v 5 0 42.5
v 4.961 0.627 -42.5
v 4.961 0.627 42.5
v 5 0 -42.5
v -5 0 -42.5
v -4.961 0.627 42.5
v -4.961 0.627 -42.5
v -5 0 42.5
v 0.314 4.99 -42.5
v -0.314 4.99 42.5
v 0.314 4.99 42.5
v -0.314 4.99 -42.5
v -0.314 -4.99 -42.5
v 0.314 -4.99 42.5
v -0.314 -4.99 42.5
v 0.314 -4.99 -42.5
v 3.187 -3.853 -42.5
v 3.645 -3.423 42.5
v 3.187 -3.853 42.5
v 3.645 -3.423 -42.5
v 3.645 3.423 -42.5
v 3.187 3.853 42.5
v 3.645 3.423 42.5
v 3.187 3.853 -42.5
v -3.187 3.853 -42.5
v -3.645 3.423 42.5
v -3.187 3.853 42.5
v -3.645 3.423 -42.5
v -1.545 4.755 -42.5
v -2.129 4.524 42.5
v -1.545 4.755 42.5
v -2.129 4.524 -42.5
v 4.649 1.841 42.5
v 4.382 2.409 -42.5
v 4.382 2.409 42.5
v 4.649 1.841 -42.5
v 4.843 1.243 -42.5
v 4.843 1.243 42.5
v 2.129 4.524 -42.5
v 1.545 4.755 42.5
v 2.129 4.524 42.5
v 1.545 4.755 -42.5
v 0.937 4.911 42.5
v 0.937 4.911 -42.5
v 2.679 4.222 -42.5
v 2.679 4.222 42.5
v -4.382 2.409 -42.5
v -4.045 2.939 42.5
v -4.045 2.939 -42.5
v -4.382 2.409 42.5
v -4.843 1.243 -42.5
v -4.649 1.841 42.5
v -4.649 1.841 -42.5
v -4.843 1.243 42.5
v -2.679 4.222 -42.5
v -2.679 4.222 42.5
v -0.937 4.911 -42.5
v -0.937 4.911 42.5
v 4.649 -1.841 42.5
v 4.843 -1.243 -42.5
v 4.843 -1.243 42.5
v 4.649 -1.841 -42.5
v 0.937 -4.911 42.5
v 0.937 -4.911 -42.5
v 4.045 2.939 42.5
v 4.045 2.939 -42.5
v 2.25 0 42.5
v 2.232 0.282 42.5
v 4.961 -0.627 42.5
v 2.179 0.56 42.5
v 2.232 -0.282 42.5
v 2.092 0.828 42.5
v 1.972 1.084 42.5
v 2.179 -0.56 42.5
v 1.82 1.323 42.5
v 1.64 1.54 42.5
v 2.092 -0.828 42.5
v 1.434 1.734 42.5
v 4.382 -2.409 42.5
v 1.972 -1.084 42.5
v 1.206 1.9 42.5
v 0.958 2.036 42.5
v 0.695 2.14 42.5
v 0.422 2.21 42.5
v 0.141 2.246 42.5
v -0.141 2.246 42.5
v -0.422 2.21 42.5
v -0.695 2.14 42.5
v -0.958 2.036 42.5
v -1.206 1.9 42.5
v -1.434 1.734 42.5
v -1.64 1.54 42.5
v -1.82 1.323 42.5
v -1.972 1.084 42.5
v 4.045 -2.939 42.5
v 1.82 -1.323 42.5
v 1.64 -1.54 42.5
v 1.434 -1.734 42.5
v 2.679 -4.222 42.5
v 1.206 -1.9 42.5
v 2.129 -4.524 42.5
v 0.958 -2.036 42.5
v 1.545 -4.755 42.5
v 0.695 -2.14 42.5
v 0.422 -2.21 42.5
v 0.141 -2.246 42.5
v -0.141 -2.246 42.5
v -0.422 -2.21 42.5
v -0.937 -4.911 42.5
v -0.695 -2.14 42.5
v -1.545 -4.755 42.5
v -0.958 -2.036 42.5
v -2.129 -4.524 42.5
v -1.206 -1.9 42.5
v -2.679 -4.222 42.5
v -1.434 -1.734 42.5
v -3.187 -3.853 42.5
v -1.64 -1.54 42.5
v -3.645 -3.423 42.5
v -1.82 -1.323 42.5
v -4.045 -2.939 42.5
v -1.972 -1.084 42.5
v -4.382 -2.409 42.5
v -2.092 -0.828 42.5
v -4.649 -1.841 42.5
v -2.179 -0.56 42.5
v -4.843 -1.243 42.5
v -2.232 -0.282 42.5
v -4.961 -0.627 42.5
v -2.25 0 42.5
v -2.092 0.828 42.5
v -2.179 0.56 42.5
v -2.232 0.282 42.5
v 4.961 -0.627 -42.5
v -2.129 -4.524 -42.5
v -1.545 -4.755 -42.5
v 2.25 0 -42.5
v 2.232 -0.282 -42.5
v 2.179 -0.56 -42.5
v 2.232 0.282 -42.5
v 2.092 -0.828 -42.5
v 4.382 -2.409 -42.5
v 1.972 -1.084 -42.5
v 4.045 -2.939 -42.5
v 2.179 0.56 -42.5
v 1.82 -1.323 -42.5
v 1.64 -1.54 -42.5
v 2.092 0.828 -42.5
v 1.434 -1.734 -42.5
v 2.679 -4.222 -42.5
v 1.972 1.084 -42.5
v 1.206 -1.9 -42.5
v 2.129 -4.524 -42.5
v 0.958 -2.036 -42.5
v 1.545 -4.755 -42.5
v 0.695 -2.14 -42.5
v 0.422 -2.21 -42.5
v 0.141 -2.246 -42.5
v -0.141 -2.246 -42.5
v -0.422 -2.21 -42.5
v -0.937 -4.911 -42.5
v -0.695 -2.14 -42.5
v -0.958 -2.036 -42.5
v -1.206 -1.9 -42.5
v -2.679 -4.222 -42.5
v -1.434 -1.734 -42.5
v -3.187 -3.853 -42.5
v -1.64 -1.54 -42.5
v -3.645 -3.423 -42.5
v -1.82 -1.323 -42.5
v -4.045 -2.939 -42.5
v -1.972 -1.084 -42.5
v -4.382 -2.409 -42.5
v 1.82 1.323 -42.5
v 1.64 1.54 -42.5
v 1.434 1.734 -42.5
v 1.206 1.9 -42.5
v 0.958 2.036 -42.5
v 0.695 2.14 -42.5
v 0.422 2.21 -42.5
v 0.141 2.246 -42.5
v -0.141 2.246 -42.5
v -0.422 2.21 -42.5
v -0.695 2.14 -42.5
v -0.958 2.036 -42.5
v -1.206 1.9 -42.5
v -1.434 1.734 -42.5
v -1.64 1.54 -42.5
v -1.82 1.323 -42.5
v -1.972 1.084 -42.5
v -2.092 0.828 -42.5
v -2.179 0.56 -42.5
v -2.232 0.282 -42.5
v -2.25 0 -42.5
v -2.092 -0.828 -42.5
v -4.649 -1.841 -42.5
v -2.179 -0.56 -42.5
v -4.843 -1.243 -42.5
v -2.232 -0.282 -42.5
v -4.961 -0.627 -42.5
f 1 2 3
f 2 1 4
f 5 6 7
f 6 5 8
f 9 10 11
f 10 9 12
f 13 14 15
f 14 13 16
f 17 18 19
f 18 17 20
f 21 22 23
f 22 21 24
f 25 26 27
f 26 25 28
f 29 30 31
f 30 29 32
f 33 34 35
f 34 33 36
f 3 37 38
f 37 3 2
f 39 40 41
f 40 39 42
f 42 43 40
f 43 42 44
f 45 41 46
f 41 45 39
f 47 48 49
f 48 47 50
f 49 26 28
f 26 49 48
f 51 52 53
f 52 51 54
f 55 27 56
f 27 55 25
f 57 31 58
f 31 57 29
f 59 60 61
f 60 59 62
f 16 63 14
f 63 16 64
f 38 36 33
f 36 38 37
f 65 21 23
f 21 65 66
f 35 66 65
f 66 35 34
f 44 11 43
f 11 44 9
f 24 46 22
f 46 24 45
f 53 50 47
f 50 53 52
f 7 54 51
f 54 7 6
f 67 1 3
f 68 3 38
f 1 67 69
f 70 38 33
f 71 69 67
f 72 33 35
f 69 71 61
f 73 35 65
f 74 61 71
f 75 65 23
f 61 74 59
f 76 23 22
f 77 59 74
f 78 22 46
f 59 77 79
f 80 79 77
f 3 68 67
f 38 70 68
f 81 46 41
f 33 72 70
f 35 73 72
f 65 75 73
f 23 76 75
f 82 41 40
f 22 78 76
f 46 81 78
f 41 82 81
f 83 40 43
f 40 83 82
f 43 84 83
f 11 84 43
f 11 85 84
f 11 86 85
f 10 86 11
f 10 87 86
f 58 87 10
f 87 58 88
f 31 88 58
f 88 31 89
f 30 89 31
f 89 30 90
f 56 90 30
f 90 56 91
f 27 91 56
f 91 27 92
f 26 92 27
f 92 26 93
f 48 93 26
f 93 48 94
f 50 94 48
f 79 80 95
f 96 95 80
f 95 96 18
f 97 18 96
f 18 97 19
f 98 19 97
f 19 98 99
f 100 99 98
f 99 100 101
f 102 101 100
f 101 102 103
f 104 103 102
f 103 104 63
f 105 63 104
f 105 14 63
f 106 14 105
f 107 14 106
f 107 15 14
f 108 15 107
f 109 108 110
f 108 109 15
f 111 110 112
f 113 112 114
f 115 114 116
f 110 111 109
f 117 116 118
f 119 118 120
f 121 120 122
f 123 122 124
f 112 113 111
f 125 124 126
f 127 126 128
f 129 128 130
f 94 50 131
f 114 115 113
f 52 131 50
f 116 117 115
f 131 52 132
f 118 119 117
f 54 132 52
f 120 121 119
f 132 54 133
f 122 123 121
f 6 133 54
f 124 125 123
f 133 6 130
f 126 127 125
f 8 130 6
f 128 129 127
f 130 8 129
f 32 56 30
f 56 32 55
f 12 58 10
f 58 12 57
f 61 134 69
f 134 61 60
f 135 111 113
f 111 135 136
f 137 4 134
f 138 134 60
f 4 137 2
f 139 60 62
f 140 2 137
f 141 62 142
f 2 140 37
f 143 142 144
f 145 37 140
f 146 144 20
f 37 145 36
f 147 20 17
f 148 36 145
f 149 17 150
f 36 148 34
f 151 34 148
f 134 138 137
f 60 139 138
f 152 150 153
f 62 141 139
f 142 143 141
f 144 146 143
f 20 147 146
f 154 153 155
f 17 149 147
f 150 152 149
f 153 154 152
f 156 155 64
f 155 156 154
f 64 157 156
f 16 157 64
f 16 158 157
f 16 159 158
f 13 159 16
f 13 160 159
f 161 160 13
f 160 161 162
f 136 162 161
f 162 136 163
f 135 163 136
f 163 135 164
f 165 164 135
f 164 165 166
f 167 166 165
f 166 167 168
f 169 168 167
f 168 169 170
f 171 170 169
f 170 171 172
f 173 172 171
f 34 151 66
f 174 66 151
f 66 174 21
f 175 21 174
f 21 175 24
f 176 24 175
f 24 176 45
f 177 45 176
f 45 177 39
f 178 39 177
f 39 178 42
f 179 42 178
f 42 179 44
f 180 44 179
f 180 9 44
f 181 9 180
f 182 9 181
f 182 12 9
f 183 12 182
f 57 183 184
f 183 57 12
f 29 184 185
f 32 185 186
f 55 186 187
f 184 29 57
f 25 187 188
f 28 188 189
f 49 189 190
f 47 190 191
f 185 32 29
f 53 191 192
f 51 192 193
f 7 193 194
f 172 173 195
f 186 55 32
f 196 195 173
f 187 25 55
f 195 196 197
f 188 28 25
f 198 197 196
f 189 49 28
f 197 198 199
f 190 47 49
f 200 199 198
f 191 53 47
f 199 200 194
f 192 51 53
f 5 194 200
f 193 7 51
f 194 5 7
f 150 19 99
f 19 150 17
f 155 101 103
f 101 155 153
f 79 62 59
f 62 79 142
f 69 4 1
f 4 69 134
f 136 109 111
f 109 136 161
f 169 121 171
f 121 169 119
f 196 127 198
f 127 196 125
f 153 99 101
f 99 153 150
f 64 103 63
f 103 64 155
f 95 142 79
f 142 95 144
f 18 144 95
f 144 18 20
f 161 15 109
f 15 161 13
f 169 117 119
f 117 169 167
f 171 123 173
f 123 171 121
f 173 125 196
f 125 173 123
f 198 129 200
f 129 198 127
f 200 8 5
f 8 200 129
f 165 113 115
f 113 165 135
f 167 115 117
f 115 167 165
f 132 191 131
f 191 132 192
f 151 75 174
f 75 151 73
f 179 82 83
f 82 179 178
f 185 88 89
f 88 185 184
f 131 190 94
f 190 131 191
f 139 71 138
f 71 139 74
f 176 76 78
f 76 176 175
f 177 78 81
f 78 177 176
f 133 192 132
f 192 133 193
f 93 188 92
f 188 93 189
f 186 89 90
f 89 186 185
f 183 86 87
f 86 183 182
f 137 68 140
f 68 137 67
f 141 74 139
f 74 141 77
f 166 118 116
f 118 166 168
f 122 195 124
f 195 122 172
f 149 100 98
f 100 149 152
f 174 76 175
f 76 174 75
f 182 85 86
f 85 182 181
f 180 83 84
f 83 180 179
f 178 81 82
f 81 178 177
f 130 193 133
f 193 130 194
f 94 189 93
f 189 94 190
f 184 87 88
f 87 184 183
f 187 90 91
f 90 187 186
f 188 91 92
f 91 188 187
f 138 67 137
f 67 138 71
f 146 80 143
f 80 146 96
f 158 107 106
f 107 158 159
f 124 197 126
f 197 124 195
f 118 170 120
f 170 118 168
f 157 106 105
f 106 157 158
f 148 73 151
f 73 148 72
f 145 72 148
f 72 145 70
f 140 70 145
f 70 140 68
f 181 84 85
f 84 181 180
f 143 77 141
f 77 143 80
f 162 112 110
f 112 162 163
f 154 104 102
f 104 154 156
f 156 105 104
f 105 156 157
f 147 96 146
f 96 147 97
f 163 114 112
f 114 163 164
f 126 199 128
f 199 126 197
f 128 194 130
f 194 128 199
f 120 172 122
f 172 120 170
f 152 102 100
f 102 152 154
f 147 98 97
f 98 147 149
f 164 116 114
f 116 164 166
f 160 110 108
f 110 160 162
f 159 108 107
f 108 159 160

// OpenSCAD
$fn = 50;


difference() {
	union() {
		translate(v = [0, 0, -42.5000000000]) {
			cylinder(h = 85, r = 5.0000000000);
		}
	}
	union() {
		translate(v = [0, 0, -100.0000000000]) {
			cylinder(h = 200, r = 2.2500000000);
		}
	}
}
